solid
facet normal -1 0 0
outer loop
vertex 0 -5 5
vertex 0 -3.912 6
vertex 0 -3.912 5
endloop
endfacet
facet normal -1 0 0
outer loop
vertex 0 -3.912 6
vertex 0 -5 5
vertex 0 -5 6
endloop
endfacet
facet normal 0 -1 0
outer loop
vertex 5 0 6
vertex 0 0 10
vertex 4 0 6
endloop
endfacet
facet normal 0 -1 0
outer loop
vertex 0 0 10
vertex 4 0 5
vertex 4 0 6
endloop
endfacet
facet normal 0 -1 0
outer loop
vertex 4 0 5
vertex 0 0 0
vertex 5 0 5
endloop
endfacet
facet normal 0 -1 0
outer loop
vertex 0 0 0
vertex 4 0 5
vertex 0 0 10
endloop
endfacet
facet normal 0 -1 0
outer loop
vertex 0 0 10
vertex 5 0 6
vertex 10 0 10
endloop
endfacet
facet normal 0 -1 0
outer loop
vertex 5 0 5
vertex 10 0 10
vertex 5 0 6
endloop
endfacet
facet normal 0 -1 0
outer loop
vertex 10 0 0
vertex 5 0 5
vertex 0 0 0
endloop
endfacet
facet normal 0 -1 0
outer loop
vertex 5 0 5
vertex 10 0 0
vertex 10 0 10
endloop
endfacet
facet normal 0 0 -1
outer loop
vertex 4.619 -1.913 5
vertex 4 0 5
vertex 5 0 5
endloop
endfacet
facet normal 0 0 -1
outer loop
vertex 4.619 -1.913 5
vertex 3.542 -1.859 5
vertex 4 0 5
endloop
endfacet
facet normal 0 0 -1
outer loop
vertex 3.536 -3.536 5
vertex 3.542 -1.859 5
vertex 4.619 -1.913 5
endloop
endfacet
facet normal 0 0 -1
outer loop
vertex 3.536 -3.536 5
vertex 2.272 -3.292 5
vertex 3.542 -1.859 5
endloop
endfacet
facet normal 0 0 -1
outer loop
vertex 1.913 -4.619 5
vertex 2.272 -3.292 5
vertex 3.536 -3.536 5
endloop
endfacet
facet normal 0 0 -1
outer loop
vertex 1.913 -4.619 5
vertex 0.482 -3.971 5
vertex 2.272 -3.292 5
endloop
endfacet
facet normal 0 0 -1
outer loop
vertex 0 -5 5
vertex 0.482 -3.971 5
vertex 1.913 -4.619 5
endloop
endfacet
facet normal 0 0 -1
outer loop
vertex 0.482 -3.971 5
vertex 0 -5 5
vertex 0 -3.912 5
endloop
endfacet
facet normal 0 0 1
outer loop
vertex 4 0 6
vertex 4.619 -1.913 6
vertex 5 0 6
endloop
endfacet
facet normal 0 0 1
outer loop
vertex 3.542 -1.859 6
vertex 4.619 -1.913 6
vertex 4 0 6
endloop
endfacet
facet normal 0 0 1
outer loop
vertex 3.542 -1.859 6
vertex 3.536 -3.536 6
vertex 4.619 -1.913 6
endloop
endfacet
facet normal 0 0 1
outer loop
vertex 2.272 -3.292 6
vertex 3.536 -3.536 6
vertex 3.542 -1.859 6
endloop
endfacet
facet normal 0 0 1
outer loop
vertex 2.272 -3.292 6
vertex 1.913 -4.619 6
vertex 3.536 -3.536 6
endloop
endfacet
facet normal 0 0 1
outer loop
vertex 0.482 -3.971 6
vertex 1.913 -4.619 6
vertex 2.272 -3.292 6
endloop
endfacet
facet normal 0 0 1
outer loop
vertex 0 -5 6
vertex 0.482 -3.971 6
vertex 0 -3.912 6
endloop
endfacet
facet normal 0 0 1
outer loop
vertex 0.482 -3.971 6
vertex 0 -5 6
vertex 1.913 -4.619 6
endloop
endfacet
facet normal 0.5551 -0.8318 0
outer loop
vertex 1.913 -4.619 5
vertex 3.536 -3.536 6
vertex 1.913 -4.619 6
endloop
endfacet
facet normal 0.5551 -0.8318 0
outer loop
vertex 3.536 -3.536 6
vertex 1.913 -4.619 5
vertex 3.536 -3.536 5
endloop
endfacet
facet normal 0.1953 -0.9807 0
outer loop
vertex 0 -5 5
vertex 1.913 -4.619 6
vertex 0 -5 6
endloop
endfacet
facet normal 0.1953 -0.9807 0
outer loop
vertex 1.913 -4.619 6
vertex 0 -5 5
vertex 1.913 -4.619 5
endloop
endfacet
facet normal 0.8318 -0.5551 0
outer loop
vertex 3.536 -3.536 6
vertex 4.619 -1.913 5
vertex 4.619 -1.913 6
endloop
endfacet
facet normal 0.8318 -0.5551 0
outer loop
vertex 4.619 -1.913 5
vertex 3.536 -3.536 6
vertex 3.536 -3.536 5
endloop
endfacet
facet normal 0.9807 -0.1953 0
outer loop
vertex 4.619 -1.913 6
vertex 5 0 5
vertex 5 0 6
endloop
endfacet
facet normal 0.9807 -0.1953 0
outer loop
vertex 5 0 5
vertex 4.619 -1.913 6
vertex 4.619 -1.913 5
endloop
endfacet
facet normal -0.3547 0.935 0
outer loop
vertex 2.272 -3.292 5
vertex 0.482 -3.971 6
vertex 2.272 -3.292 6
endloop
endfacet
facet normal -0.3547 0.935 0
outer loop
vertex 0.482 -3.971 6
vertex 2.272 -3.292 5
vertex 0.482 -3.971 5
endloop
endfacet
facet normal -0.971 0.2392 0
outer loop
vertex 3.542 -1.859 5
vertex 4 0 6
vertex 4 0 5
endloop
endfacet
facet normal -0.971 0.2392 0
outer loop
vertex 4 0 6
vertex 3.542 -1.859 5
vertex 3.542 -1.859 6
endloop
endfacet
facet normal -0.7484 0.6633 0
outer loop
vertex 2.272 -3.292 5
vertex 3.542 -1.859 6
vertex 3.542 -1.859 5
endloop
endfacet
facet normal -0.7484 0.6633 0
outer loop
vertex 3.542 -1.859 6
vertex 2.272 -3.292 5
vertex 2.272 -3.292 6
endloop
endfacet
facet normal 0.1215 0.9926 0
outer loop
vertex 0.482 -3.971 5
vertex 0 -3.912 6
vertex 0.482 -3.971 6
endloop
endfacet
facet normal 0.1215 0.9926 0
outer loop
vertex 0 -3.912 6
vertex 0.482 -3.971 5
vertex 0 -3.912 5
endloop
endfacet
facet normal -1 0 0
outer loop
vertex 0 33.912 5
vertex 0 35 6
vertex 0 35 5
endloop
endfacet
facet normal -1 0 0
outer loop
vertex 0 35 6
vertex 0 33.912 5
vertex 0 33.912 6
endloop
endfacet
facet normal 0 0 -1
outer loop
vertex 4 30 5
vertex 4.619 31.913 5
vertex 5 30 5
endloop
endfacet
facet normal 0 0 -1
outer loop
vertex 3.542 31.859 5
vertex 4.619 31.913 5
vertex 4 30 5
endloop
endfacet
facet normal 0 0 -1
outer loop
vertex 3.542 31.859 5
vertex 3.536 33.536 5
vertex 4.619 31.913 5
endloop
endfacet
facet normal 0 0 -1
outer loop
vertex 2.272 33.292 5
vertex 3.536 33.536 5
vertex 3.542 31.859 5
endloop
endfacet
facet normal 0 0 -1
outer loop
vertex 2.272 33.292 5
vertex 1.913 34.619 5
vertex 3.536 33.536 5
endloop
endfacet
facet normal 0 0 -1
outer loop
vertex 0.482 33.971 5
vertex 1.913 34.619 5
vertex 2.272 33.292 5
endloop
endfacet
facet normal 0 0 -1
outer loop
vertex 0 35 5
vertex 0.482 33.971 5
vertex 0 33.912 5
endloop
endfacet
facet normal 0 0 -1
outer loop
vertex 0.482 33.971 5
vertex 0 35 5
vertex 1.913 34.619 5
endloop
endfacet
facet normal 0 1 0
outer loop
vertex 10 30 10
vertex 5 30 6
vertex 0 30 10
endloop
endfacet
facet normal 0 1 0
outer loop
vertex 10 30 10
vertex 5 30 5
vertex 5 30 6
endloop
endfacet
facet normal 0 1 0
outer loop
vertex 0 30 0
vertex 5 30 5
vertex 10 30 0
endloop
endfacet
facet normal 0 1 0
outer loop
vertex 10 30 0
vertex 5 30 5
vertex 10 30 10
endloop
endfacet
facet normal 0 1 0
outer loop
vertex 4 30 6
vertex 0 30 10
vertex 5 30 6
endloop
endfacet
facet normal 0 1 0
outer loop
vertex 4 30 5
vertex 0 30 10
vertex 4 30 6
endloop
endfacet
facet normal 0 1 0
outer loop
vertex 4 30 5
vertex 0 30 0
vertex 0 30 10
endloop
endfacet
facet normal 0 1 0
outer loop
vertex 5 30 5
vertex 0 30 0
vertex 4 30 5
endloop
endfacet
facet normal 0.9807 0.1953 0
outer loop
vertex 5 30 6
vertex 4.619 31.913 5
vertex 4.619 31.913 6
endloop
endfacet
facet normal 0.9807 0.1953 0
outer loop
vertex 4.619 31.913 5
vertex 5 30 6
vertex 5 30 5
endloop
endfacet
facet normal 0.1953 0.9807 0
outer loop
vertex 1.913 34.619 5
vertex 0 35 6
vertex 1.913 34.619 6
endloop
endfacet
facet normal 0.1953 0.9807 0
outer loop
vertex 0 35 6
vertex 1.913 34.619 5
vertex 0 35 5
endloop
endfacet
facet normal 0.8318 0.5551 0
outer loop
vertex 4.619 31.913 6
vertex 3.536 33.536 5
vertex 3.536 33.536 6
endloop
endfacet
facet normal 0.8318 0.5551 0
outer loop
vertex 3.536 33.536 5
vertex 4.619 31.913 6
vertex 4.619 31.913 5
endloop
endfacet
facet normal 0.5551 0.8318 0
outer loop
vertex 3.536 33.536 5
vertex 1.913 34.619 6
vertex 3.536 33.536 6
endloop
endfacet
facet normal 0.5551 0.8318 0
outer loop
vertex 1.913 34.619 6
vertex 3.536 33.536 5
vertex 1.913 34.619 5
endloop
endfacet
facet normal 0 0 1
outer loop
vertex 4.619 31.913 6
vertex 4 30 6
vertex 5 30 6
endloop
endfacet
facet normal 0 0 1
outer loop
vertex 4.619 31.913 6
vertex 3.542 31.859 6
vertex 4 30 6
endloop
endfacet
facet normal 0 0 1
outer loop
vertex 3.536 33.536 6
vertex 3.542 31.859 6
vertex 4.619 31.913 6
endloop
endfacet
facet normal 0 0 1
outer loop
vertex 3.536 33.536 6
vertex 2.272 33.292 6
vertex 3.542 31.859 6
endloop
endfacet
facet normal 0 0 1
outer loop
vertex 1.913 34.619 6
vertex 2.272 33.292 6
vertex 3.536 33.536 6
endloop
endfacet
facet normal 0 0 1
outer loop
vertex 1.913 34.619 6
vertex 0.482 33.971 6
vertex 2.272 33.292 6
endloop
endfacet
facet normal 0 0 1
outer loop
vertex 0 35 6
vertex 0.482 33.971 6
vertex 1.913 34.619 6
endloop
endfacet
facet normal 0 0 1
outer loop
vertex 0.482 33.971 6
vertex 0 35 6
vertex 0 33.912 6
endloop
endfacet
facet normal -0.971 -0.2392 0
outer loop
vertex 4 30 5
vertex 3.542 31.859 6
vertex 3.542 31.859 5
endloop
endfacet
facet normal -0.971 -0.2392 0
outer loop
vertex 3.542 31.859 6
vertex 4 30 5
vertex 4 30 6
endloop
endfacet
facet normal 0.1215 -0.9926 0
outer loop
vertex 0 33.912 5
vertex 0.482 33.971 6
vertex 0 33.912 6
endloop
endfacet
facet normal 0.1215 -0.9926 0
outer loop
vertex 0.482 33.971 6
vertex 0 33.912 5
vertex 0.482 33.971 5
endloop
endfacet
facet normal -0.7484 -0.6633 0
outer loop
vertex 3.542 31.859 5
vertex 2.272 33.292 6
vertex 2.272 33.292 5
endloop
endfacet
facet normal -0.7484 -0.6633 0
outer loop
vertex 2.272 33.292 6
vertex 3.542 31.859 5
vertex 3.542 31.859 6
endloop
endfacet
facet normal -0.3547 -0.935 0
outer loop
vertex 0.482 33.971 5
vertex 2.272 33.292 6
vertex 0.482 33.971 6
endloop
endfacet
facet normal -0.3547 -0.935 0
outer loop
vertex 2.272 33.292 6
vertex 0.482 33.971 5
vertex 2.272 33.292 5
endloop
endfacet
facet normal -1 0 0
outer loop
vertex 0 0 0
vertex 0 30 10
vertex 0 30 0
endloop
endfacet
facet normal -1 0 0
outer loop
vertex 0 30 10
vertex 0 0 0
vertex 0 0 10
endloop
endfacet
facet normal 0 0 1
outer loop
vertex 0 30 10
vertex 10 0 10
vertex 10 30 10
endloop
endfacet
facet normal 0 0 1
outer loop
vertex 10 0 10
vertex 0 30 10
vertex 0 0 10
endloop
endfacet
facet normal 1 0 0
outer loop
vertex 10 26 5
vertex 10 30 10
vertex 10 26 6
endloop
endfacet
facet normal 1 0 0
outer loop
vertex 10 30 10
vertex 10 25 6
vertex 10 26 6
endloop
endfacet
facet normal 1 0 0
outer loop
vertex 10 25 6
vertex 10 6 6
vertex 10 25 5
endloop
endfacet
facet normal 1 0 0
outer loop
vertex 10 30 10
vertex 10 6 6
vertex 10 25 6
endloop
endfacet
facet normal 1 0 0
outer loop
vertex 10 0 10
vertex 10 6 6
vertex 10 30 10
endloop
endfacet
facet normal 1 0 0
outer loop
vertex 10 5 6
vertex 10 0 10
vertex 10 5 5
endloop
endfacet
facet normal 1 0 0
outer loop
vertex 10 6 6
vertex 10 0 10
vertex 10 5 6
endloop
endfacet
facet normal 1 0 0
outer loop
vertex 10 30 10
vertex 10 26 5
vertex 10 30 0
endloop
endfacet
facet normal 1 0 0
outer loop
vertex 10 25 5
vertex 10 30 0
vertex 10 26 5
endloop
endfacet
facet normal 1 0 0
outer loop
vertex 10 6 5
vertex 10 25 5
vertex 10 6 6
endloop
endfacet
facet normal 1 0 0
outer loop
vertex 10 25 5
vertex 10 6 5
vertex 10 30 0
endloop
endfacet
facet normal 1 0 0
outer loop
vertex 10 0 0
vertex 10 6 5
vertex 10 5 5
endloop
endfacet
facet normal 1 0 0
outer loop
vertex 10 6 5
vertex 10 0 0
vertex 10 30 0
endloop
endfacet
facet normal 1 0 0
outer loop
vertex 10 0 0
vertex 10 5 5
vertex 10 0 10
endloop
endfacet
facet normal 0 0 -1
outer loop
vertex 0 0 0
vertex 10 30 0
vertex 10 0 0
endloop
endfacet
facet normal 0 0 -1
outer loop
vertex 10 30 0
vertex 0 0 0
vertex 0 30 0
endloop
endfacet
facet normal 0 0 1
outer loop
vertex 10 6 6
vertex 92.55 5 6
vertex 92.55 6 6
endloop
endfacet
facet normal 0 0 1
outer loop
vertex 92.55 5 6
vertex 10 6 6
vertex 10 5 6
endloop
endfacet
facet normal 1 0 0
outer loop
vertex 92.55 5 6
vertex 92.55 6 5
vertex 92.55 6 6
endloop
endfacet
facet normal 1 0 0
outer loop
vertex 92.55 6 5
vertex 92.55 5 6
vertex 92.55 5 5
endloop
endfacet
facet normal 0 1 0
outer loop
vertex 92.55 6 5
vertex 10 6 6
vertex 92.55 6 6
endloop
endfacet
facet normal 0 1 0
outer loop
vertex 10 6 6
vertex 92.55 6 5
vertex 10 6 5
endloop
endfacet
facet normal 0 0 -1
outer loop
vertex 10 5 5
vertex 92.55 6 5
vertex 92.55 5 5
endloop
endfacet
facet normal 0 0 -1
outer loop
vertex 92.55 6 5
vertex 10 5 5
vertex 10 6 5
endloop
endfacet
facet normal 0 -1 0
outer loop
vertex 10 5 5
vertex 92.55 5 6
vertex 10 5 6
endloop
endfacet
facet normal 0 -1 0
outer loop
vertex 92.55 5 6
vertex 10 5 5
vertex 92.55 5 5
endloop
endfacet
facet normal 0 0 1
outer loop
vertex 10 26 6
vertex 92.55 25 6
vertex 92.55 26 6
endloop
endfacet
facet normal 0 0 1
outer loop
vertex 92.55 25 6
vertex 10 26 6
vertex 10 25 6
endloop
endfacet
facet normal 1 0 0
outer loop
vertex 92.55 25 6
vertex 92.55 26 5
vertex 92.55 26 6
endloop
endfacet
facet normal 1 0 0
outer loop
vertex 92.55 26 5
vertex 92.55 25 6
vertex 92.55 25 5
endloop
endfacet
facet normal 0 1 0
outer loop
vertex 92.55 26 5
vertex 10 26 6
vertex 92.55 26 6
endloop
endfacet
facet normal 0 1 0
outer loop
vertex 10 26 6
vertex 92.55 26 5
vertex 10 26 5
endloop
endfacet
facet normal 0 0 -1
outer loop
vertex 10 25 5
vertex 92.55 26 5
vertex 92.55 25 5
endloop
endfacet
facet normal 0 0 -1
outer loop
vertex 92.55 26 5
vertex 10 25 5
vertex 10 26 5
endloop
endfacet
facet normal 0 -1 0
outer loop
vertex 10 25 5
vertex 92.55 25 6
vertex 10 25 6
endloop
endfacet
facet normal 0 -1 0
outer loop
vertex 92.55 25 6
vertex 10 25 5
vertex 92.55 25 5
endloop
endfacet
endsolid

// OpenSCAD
intX=82.55;
cube([10,30,10]);
translate([10,5,5])cube([intX,1,1]);
translate([10,25,5])cube([intX,1,1]);

translate([0,0,5])difference(){
        intersection(){
            translate([0,-5,0])cube([5,5,5]);
            cylinder(r=5,h=1);
        }
        cylinder(r=4,h=1);
}

translate([0,30,5])difference(){
        intersection(){
            translate([0,0,0])cube([5,5,5]);
            cylinder(r=5,h=1);
        }
        cylinder(r=4,h=1);
}
